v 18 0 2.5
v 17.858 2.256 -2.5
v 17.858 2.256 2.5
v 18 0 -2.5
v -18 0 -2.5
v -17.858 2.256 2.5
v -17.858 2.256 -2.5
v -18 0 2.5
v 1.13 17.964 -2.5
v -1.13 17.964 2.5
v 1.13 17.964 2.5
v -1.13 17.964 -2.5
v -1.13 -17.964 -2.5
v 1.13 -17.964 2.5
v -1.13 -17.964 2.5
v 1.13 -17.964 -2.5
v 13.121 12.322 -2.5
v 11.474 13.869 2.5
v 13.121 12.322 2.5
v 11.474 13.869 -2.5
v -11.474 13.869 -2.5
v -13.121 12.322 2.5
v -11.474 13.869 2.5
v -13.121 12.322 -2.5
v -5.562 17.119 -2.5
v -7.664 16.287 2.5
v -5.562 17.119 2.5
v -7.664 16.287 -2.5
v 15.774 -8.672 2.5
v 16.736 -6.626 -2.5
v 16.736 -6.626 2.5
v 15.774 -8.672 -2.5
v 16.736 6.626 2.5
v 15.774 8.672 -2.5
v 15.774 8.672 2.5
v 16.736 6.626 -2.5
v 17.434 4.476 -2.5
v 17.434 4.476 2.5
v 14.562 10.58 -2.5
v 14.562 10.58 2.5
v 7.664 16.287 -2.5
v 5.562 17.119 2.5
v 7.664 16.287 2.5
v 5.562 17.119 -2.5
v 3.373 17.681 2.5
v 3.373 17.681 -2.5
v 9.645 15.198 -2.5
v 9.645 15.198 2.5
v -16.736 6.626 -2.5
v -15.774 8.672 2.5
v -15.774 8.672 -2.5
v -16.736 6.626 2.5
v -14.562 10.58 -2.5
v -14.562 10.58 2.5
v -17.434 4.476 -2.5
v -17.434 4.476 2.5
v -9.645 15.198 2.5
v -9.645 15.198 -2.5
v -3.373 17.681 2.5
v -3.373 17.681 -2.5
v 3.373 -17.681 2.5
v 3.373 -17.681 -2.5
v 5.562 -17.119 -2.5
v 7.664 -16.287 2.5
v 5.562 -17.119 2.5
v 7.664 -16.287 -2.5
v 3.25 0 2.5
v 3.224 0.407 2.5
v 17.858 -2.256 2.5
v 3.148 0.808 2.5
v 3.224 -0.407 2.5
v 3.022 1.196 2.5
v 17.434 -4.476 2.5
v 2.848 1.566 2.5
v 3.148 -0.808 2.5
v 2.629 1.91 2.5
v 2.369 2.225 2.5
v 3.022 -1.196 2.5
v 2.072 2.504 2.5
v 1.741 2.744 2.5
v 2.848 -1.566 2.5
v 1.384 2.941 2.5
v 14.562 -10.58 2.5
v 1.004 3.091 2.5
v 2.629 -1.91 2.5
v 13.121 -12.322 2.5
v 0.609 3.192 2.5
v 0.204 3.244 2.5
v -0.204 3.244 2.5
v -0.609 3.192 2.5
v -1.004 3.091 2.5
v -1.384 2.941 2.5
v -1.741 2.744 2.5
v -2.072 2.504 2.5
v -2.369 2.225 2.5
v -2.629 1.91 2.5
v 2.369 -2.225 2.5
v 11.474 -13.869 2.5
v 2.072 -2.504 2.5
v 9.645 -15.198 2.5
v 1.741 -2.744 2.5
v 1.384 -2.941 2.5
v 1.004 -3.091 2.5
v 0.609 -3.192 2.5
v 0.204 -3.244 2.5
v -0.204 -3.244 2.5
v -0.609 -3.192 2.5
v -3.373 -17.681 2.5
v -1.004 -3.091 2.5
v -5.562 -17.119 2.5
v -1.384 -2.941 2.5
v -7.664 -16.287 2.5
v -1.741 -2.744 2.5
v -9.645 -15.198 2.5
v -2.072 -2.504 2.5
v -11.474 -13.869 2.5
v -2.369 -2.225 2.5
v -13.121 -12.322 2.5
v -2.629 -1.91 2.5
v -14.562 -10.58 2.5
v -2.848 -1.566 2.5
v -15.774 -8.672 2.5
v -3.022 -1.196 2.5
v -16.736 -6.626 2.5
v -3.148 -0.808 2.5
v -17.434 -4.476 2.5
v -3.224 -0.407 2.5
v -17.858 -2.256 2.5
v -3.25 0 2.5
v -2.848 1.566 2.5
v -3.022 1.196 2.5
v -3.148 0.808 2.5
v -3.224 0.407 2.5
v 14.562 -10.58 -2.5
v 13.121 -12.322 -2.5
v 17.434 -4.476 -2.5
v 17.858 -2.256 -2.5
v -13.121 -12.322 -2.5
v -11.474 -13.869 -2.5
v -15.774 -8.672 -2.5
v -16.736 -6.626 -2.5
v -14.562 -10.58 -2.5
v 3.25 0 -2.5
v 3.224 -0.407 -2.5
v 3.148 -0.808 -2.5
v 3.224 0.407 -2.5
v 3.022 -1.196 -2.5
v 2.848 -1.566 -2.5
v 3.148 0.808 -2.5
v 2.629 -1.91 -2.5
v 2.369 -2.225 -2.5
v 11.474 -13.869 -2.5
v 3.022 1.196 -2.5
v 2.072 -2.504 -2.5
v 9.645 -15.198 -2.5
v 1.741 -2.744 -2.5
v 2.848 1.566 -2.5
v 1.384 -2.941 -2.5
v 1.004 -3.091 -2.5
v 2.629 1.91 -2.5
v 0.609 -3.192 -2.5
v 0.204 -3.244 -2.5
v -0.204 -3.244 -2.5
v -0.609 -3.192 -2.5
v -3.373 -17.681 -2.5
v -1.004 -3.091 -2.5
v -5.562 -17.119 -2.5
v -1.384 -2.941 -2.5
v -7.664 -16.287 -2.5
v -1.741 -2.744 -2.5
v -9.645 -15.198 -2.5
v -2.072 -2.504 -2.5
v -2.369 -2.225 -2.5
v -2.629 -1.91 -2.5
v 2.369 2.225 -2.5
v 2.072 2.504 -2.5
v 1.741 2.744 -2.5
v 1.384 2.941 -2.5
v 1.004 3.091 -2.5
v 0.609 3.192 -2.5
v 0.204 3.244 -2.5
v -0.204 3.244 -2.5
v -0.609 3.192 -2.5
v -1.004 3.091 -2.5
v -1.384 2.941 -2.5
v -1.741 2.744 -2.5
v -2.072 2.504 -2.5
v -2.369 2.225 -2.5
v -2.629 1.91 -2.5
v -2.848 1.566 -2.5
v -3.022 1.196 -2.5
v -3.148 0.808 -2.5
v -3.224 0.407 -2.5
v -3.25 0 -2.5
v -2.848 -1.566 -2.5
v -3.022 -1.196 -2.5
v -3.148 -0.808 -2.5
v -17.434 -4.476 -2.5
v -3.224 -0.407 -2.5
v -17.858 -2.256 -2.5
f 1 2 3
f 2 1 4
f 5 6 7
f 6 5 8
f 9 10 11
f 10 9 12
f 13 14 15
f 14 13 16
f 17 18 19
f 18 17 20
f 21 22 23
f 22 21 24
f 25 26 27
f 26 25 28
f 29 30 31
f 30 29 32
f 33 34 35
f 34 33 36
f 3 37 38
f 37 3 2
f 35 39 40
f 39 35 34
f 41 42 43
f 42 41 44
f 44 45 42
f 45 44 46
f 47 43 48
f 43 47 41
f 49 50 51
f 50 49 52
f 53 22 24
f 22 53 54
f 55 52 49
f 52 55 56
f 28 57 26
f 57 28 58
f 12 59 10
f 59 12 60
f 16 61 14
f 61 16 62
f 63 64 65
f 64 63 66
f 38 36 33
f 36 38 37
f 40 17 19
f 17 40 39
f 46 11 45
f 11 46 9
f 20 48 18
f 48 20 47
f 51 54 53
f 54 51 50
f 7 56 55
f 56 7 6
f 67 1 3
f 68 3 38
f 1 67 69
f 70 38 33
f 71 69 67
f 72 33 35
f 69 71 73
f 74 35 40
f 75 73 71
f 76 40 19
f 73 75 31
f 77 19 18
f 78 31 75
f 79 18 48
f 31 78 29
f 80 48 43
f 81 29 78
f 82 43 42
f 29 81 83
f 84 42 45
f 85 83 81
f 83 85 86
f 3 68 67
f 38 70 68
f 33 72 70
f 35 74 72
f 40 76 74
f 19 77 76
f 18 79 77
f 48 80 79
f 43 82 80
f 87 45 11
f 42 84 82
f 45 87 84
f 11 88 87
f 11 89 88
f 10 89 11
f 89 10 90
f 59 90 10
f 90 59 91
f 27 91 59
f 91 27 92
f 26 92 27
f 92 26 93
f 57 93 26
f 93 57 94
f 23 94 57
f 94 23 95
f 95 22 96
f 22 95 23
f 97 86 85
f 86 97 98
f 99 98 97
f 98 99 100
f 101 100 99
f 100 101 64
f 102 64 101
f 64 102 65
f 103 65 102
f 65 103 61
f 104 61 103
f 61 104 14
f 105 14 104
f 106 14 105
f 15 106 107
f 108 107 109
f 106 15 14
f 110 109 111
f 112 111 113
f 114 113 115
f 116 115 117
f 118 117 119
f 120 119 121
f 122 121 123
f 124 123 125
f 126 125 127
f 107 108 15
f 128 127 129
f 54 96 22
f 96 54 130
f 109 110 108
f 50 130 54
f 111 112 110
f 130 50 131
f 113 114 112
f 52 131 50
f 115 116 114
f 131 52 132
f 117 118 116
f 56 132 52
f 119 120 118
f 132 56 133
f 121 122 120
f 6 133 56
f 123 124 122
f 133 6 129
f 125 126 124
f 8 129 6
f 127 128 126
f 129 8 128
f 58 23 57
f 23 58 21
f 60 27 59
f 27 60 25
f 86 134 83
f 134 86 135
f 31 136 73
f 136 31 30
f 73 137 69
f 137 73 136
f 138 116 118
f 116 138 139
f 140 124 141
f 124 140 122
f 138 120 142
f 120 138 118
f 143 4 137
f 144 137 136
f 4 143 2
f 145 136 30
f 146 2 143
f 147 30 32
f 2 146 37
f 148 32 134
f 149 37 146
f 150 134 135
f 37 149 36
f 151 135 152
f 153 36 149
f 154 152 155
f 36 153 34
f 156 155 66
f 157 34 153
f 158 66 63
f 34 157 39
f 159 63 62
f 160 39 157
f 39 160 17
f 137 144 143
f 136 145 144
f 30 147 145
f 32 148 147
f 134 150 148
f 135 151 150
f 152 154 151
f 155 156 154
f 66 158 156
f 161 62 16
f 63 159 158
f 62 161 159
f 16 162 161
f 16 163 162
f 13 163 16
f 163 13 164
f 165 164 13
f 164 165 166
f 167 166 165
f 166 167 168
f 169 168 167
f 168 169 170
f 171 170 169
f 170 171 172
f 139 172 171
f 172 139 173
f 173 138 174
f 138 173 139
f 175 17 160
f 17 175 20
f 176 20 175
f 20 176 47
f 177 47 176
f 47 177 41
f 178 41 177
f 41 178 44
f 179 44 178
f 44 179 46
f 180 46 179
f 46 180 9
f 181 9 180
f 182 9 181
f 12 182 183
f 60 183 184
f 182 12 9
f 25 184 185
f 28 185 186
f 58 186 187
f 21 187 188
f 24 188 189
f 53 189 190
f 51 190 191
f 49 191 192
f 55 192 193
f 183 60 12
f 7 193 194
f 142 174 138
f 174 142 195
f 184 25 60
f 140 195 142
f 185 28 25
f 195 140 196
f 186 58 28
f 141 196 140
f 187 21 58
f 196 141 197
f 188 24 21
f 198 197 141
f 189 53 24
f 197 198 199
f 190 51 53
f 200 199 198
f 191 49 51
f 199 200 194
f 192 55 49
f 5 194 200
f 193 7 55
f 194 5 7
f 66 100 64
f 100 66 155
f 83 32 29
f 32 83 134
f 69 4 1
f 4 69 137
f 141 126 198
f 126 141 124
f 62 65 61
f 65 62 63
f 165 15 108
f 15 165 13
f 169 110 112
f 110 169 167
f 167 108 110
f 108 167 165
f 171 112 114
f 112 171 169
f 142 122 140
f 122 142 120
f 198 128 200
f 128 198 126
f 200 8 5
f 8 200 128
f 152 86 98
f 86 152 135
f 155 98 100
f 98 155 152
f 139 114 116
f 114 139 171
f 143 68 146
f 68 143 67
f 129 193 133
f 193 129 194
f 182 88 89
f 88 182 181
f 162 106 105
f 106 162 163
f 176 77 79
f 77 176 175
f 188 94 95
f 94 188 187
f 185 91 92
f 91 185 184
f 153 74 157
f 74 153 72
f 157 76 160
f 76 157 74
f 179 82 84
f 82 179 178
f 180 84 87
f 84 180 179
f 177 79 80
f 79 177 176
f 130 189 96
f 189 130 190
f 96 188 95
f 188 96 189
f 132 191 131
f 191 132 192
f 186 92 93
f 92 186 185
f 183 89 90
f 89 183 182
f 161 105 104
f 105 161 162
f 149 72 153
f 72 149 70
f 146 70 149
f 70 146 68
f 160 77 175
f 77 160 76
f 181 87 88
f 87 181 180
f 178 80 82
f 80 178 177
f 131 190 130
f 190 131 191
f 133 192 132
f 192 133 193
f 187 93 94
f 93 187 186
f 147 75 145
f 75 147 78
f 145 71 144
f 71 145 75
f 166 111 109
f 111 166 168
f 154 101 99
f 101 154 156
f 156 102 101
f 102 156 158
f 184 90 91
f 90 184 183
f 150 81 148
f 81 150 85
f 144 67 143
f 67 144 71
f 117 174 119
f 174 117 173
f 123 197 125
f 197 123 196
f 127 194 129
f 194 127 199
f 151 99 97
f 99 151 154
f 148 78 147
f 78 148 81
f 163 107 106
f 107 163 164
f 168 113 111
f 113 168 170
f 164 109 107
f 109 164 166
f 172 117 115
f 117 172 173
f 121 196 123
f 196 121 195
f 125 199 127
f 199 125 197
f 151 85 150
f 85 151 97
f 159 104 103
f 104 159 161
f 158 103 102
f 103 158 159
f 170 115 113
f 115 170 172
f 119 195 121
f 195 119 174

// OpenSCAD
$fn = 50;


difference() {
	union() {
		translate(v = [0, 0, -2.5000000000]) {
			cylinder(h = 5, r = 18.0000000000);
		}
	}
	union() {
		translate(v = [0, 0, -100.0000000000]) {
			cylinder(h = 200, r = 3.2500000000);
		}
	}
}
